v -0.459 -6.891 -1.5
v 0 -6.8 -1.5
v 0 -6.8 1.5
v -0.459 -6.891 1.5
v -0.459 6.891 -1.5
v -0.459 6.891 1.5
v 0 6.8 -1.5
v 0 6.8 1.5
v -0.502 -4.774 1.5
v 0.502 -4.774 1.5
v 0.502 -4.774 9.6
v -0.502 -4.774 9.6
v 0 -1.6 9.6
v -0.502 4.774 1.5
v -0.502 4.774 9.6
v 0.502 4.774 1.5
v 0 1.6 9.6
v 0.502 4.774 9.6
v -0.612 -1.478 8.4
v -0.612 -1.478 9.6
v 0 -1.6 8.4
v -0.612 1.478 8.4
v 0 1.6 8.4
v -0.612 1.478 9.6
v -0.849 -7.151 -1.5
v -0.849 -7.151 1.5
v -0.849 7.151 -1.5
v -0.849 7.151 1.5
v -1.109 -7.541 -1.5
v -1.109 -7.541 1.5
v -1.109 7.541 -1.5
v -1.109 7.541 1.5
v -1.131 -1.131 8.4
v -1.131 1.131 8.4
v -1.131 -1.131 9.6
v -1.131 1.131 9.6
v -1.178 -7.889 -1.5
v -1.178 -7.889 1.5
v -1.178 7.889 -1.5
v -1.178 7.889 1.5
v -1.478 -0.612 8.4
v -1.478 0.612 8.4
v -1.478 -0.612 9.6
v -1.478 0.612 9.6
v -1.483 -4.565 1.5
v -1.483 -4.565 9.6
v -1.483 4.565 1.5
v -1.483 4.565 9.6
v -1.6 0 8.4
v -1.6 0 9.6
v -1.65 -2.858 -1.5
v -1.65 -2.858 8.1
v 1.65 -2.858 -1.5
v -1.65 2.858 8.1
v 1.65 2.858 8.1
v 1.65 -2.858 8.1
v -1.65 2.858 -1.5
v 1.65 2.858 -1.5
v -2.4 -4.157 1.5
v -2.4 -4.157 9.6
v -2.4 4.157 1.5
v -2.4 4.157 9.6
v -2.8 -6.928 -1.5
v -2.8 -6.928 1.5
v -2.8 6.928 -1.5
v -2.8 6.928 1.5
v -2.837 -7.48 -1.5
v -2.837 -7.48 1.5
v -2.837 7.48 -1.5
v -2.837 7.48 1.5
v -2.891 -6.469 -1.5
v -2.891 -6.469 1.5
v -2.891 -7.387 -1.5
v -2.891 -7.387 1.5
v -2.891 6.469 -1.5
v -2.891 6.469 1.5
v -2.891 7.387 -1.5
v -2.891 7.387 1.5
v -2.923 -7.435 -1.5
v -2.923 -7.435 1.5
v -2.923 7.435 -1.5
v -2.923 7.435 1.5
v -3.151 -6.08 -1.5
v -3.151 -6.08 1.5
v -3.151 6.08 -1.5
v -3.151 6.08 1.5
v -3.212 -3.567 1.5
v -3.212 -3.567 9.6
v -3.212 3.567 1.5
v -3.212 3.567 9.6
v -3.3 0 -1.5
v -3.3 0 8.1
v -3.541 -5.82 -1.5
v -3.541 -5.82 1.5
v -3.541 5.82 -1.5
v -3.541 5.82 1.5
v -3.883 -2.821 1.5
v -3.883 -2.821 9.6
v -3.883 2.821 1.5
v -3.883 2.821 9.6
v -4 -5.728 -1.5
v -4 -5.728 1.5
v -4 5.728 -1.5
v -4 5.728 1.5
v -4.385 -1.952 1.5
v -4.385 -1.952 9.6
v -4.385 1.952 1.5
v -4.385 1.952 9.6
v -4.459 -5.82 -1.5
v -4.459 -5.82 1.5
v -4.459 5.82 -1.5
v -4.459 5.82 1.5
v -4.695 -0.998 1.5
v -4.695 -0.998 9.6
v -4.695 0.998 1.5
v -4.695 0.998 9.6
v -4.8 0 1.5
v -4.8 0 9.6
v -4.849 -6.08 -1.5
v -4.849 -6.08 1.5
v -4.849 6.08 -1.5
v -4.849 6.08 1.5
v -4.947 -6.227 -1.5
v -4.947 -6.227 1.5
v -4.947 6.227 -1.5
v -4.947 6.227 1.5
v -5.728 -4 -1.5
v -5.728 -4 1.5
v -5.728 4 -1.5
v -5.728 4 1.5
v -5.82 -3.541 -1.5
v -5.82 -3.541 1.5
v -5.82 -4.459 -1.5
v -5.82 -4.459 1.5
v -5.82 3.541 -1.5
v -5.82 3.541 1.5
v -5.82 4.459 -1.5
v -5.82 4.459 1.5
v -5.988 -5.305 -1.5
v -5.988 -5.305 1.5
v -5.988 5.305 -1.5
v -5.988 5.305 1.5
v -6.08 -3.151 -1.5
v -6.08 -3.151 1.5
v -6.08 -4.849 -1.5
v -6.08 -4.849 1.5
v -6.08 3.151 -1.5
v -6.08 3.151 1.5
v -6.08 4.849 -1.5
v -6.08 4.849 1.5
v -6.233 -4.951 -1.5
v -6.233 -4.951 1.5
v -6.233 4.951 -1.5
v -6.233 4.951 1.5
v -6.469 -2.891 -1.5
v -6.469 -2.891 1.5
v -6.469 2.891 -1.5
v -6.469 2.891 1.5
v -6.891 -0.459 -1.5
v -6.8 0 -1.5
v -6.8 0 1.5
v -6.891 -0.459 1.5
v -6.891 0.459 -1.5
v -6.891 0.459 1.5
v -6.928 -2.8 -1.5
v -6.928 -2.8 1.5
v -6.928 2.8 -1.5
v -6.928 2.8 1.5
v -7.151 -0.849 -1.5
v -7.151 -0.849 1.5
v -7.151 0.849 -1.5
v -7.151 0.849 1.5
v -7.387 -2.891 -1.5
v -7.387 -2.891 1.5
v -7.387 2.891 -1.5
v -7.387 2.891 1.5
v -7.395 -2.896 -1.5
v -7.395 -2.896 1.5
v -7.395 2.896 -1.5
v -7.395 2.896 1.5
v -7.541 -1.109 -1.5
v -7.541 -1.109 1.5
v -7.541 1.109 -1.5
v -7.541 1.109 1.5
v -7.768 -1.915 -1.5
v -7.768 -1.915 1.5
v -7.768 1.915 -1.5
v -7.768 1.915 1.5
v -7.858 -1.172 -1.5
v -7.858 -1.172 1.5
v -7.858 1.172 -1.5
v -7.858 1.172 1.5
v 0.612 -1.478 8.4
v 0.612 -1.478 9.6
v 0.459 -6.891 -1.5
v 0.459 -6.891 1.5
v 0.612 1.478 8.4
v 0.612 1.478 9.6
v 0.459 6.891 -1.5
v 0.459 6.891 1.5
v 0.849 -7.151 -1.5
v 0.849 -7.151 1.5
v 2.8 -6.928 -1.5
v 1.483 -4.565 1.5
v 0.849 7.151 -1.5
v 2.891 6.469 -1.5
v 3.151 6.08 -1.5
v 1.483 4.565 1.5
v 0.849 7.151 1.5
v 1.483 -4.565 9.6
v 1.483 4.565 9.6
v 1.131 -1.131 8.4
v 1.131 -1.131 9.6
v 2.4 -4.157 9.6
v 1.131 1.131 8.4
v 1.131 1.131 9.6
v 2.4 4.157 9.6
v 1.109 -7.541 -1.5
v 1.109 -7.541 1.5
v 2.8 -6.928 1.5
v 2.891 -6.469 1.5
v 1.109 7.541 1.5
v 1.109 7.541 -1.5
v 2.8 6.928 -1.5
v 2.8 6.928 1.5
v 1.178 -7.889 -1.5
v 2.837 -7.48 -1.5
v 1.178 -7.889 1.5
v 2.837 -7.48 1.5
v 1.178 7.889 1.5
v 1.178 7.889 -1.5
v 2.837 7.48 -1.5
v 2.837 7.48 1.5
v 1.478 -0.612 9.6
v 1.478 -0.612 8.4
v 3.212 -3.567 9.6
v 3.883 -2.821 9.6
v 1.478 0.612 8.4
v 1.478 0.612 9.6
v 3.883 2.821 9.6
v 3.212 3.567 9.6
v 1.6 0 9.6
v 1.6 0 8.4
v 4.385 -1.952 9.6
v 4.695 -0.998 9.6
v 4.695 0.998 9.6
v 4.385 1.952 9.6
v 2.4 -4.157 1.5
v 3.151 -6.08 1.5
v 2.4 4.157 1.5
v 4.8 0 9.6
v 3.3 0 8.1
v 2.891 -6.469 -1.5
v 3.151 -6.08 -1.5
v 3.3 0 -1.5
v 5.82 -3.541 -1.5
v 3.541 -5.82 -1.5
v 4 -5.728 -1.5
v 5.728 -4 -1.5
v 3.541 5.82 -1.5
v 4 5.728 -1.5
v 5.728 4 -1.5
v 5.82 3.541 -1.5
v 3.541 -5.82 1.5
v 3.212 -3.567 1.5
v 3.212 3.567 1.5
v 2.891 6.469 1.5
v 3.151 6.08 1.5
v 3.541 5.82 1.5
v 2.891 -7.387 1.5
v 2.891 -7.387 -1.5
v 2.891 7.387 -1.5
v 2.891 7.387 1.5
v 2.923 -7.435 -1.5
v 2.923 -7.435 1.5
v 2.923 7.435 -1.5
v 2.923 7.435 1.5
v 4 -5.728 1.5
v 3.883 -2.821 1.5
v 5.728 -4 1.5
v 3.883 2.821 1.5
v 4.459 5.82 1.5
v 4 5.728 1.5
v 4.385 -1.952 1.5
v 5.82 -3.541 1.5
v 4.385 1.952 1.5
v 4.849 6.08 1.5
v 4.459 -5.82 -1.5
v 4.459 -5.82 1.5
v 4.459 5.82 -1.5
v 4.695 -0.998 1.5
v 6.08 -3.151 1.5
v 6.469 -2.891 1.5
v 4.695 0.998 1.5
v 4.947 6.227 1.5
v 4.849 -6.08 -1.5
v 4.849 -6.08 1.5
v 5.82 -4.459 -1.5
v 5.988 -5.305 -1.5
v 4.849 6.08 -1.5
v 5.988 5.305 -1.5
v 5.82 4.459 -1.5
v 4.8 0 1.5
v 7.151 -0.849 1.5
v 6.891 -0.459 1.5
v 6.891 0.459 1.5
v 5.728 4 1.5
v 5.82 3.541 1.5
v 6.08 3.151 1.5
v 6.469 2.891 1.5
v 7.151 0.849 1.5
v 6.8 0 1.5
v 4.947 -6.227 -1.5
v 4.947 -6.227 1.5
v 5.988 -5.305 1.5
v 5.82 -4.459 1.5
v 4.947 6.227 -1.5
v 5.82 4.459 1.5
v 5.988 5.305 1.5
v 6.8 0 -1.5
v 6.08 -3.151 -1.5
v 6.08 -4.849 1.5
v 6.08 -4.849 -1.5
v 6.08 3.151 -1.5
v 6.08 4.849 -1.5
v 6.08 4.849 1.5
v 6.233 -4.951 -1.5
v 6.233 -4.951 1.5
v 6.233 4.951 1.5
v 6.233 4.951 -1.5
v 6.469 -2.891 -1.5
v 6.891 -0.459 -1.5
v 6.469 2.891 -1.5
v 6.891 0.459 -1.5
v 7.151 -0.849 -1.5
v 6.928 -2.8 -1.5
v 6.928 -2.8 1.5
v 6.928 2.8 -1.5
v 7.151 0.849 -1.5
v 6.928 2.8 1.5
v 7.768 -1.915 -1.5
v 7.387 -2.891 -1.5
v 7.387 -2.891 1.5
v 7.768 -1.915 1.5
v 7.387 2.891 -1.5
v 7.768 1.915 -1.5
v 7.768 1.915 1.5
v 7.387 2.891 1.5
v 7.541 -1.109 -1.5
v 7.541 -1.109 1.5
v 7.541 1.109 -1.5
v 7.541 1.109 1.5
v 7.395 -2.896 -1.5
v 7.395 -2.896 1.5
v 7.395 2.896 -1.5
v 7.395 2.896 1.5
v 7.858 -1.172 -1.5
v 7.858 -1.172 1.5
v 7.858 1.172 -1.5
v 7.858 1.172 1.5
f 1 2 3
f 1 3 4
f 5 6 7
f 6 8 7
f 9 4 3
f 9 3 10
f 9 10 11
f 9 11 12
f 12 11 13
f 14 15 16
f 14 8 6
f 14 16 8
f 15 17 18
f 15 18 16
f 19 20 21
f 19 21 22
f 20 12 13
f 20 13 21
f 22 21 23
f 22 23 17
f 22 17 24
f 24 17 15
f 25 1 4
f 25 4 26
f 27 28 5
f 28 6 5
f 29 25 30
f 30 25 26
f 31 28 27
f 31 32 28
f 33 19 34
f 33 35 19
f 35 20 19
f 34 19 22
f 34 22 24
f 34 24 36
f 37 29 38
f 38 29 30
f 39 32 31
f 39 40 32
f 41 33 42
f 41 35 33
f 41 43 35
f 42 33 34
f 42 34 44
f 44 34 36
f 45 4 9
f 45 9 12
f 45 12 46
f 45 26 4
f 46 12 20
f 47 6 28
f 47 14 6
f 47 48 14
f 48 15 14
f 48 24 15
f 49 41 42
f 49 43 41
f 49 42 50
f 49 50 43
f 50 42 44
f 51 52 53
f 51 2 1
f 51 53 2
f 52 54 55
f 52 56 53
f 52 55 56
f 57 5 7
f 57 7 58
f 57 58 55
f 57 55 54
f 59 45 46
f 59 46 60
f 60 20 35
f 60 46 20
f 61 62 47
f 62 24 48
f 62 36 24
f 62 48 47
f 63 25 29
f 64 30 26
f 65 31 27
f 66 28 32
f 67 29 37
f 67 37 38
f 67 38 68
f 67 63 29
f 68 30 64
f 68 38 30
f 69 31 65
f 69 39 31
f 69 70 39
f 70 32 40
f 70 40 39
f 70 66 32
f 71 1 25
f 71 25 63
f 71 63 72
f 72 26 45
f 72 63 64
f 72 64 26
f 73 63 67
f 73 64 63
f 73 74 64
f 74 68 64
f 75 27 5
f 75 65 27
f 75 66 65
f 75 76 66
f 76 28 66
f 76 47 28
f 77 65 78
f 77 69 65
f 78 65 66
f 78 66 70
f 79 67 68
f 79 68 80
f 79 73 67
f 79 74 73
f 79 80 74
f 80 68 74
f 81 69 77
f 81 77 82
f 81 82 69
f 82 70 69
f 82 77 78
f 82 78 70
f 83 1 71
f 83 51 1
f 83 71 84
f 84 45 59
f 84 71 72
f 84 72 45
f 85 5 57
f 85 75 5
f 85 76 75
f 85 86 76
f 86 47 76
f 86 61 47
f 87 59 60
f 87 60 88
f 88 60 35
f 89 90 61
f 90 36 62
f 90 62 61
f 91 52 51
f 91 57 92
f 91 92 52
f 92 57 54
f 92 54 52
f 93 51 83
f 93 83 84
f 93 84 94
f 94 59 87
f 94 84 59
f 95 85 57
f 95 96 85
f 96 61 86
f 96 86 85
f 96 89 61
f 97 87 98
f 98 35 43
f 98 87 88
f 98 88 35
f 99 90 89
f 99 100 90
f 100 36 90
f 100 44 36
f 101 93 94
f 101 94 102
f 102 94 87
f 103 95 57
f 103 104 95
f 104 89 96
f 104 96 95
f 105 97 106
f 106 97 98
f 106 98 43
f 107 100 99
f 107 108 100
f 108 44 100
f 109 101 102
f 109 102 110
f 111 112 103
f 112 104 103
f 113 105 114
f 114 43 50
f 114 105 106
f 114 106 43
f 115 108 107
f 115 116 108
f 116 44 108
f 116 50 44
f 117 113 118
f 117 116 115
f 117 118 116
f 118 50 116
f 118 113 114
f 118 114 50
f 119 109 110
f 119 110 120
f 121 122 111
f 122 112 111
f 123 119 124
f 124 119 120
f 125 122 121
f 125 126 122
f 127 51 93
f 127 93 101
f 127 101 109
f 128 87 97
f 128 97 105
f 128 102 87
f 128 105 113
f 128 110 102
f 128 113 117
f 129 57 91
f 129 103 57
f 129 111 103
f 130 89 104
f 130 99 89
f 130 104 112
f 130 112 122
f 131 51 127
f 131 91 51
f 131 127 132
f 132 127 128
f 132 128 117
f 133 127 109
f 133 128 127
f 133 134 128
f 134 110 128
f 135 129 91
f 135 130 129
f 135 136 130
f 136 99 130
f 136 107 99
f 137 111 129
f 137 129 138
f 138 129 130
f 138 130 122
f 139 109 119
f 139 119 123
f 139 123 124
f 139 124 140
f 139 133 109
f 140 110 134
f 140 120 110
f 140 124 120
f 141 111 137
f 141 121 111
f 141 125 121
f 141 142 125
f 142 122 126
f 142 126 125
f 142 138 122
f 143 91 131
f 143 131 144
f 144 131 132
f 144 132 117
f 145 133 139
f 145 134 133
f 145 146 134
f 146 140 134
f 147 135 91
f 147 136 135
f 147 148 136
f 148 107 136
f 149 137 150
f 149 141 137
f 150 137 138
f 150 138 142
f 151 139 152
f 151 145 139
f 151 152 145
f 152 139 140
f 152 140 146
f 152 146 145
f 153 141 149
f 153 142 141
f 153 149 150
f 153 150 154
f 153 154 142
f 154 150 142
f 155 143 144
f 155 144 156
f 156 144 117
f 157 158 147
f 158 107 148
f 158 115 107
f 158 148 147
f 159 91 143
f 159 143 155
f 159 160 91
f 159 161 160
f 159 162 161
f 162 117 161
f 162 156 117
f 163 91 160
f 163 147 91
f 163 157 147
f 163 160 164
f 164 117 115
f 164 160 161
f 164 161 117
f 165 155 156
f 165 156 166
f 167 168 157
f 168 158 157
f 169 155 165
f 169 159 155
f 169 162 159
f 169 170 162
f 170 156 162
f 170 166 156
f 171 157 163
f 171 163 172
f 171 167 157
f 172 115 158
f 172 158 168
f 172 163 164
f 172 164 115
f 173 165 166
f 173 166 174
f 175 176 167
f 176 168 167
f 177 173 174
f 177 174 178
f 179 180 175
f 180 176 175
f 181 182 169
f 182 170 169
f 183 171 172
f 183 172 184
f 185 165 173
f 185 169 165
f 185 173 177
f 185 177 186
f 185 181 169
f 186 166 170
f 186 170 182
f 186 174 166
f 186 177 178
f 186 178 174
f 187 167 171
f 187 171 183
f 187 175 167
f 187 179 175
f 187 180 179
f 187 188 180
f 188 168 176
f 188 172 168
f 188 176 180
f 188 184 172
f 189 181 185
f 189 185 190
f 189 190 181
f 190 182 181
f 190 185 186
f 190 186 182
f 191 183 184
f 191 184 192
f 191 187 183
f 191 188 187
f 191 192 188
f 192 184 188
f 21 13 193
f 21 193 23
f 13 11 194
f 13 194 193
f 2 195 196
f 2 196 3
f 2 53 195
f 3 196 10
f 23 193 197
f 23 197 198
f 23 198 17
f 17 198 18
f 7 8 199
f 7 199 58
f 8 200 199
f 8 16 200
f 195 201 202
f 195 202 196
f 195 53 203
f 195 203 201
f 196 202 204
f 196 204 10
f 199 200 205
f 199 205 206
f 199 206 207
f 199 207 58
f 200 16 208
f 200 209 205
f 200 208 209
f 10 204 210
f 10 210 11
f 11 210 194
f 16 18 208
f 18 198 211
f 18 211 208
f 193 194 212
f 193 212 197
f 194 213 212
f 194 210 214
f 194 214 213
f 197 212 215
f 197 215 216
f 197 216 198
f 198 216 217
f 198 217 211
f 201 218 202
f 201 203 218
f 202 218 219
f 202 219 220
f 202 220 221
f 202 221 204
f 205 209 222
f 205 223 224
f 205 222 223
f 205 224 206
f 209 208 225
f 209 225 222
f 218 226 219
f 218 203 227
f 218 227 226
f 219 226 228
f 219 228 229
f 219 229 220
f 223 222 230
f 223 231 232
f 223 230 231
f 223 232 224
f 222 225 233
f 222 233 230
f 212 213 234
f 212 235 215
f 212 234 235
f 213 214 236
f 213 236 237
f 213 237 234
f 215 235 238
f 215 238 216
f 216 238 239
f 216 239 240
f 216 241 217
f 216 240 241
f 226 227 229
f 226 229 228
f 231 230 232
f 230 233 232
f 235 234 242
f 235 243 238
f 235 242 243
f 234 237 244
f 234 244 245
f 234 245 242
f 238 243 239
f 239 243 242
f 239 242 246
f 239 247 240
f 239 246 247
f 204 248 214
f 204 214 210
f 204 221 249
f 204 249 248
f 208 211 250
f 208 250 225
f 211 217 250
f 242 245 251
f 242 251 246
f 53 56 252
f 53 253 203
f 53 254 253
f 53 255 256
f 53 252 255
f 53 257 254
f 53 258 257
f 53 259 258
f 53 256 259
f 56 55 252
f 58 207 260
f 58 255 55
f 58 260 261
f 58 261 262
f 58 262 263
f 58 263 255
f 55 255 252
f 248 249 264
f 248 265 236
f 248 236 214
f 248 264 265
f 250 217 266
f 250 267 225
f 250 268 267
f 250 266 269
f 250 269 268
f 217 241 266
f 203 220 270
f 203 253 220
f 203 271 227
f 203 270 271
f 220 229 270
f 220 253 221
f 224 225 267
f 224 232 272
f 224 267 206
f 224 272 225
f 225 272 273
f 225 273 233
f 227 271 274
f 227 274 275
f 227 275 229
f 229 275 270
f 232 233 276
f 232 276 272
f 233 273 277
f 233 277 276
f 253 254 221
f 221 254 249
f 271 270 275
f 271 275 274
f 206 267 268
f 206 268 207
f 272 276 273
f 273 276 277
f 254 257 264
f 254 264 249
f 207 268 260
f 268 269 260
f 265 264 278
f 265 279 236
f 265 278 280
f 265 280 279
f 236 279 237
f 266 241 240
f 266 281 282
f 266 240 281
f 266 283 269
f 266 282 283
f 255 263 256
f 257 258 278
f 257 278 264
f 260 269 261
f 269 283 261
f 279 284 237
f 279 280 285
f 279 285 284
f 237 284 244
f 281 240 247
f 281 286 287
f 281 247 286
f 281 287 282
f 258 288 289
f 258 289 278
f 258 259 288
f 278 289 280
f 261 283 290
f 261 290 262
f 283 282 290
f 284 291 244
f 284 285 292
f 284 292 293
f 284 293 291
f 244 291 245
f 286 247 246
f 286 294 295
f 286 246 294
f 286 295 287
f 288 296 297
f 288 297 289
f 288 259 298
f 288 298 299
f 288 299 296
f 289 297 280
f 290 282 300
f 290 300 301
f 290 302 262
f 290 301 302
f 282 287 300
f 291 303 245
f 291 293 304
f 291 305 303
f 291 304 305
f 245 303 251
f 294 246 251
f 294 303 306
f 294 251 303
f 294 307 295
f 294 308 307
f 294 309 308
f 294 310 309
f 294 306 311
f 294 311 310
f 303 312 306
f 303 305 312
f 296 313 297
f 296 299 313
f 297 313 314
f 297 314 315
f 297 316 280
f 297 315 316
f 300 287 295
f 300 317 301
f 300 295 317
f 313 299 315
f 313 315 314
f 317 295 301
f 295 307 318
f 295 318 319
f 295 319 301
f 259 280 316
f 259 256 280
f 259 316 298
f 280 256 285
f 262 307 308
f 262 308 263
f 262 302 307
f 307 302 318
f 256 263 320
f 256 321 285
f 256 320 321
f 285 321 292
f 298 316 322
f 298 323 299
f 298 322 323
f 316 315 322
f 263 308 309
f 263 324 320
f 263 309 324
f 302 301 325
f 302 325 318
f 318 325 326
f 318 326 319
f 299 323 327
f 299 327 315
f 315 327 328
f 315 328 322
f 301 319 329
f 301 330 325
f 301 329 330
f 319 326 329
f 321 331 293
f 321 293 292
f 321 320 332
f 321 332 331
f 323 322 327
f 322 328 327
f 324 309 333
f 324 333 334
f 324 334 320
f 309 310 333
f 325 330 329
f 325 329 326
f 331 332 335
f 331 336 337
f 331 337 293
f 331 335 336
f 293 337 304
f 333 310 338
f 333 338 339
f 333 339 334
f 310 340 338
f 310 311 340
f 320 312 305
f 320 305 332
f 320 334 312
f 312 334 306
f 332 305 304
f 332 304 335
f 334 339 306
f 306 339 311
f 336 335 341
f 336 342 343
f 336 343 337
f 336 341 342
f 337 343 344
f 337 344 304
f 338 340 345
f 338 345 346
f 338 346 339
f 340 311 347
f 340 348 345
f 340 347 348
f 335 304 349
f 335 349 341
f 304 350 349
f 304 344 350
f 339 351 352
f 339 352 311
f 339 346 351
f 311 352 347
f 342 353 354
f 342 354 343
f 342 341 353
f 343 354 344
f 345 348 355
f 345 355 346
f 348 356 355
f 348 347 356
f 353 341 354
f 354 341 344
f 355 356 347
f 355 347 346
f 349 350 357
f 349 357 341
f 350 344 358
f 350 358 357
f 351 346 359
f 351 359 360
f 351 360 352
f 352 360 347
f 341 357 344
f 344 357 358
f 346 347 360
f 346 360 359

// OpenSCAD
// file: ../parameters.scad
global_clearance = 0.5;
layer_height = 0.3; 

//Main tube diameter - hole [mm]
main_tube_outer_diameter = 25.4;
main_tube_inner_diameter = 23.05;

// Nastavení parametrů rotoru

gliding_aggle = 14;         // tenhle úhel by se zřejmě v budoucnu měl počítat z požadované klouzavosti.

rotor_blade_AOA = 1.5;      // nastavení úhlu náběhu rotorového listu
rotor_blade_length = 970;   // délka rotorového listu
rotor_blade_depth = 50;     // hloubka rotorového listu
rotor_height = 180;         // výška otočného kloubu rotoru nad hlavní trubkou vírníku (odhad)
rotor_blades_count = 2;
rotor_delta_angle = 12;


rotor_head_width =  21.4;    //Rozměr 1 v nákresu
pilon_wall_thickness = 4.2;  // Rozměr 2 v nákresu
horizontal_screw_distance = 14.5;   // Rozměr 4 v nákresu
vertical_screw_distance = 12;       // rozměr 5 v nkresu
topscrew_distance_endofpilon = 5;

rotorhead_wall_thickness = 2; // sila tistenych dilu


bearing_outer_diameter = 10.2;    // Rozměr B1 v nákresu s přídavkem na toleranci otvoru
bearing_thickness = 4;        // Rozměr B2 v nákresu
//bearing_shaft_length = 19.5;    // Rozměr B3 v nákresu, Originalni hodnota 19.5
bearing_shaft_length = 20;    // Rozměr B3 v nákresu


// nastavení parametrů motoru

engine_angle = -8;
engine_diameter = 55;
engine_offset = 55;

engine_screws_radius = 15;
engine_holes_radius = (24 + 44)/4;
engine_shatf_hole_diameter = 13;

// screw length step - minimum difference in length between two types of screws
basic_screw_length = 5;

//Screw diameter and nut for M5 [mm]
M5_screw_diameter=5.5;
M5_head_height = 5;
M5_head_diameter = 13+0.5;
M5_nut_height = 4.5;
M5_nut_diameter = 9.4;
M5_nut_pocket = 8.4;

//Screw diameter and nut for M4 [mm]
M4_screw_diameter=4.5;
M4_screw_head_height = 4;
M4_nut_height = 3.2;
M4_nut_diameter = 8.4;
M4_nut_pocket = 7.5;

//Screw diameter and nut for M3 [mm]
M3_screw_diameter = 3.2;
M3_nut_height = 2.7;
M3_nut_diameter = 6.6;
M3_screw_head_height = 3;
M3_nut_pocket = 5.6;


//Screw diameter and nut for M2,5 [mm]
M2_5_screw_diameter = 2.7;
M2_5_nut_height = 2.3;
M2_5_nut_diameter = 6;
M2_5_nut_pocket = 5.1;

//Screw diameter and nut for M2 [mm]
M2_screw_diameter = 2.2;
M2_nut_height = 1.8;
M2_nut_diameter = 4.8;
M2_nut_pocket = 3.95;



//šroub servo
Servo_screw = 1.5;
Servo_nut_height = 1;
Servo_nut_diameter = 2.7;



//center_of_gravity_position = [main_pilon_position - tan(gliding_aggle)*rotor_height, 0, 0];


////podzvozek

radius_undercarriage = 25;
vzdalenost_x = tan(20) * 131;
vzdalenost_y = (131 - radius_undercarriage)/tan(79);
uhel_y = 90 - 20;
uhel_x = 90 - 79;

maximum_printable_size = 150;


////Pitotova trubice
Pitot_tube_diameter = 4.02 + 1;
Distance_hole_from_tube = 11.92;  //vzdálenost otvoru pro připevnění od samotné trubičky
// main file
include <../parameters.scad>

// Diameter of the whole holder
diameter = 16;
// Tooth diameter
tooth_diameter = 2.4;

difference(){
	union(){
		cylinder(r=diameter/2, h=3, center=true); 
        cylinder(d=3 * M3_screw_diameter, h = 3 * M3_screw_diameter, $fn = 30);
	}

	for ( i = [0 : 30 : 360] ){
		translate([sin(i)*diameter/2,cos(i)*diameter/2,-3]) cylinder(r=tooth_diameter/2,h=6, $fn=16);
	}

	translate([0,0,-1.5]) 
        cylinder(d = M3_nut_diameter, h = 3 * M3_screw_diameter, $fn=6);
	translate([0,0,3 * M3_screw_diameter -1.5 + layer_height]) 
        cylinder(d = M3_screw_diameter, h=5, $fn=16);
}	
